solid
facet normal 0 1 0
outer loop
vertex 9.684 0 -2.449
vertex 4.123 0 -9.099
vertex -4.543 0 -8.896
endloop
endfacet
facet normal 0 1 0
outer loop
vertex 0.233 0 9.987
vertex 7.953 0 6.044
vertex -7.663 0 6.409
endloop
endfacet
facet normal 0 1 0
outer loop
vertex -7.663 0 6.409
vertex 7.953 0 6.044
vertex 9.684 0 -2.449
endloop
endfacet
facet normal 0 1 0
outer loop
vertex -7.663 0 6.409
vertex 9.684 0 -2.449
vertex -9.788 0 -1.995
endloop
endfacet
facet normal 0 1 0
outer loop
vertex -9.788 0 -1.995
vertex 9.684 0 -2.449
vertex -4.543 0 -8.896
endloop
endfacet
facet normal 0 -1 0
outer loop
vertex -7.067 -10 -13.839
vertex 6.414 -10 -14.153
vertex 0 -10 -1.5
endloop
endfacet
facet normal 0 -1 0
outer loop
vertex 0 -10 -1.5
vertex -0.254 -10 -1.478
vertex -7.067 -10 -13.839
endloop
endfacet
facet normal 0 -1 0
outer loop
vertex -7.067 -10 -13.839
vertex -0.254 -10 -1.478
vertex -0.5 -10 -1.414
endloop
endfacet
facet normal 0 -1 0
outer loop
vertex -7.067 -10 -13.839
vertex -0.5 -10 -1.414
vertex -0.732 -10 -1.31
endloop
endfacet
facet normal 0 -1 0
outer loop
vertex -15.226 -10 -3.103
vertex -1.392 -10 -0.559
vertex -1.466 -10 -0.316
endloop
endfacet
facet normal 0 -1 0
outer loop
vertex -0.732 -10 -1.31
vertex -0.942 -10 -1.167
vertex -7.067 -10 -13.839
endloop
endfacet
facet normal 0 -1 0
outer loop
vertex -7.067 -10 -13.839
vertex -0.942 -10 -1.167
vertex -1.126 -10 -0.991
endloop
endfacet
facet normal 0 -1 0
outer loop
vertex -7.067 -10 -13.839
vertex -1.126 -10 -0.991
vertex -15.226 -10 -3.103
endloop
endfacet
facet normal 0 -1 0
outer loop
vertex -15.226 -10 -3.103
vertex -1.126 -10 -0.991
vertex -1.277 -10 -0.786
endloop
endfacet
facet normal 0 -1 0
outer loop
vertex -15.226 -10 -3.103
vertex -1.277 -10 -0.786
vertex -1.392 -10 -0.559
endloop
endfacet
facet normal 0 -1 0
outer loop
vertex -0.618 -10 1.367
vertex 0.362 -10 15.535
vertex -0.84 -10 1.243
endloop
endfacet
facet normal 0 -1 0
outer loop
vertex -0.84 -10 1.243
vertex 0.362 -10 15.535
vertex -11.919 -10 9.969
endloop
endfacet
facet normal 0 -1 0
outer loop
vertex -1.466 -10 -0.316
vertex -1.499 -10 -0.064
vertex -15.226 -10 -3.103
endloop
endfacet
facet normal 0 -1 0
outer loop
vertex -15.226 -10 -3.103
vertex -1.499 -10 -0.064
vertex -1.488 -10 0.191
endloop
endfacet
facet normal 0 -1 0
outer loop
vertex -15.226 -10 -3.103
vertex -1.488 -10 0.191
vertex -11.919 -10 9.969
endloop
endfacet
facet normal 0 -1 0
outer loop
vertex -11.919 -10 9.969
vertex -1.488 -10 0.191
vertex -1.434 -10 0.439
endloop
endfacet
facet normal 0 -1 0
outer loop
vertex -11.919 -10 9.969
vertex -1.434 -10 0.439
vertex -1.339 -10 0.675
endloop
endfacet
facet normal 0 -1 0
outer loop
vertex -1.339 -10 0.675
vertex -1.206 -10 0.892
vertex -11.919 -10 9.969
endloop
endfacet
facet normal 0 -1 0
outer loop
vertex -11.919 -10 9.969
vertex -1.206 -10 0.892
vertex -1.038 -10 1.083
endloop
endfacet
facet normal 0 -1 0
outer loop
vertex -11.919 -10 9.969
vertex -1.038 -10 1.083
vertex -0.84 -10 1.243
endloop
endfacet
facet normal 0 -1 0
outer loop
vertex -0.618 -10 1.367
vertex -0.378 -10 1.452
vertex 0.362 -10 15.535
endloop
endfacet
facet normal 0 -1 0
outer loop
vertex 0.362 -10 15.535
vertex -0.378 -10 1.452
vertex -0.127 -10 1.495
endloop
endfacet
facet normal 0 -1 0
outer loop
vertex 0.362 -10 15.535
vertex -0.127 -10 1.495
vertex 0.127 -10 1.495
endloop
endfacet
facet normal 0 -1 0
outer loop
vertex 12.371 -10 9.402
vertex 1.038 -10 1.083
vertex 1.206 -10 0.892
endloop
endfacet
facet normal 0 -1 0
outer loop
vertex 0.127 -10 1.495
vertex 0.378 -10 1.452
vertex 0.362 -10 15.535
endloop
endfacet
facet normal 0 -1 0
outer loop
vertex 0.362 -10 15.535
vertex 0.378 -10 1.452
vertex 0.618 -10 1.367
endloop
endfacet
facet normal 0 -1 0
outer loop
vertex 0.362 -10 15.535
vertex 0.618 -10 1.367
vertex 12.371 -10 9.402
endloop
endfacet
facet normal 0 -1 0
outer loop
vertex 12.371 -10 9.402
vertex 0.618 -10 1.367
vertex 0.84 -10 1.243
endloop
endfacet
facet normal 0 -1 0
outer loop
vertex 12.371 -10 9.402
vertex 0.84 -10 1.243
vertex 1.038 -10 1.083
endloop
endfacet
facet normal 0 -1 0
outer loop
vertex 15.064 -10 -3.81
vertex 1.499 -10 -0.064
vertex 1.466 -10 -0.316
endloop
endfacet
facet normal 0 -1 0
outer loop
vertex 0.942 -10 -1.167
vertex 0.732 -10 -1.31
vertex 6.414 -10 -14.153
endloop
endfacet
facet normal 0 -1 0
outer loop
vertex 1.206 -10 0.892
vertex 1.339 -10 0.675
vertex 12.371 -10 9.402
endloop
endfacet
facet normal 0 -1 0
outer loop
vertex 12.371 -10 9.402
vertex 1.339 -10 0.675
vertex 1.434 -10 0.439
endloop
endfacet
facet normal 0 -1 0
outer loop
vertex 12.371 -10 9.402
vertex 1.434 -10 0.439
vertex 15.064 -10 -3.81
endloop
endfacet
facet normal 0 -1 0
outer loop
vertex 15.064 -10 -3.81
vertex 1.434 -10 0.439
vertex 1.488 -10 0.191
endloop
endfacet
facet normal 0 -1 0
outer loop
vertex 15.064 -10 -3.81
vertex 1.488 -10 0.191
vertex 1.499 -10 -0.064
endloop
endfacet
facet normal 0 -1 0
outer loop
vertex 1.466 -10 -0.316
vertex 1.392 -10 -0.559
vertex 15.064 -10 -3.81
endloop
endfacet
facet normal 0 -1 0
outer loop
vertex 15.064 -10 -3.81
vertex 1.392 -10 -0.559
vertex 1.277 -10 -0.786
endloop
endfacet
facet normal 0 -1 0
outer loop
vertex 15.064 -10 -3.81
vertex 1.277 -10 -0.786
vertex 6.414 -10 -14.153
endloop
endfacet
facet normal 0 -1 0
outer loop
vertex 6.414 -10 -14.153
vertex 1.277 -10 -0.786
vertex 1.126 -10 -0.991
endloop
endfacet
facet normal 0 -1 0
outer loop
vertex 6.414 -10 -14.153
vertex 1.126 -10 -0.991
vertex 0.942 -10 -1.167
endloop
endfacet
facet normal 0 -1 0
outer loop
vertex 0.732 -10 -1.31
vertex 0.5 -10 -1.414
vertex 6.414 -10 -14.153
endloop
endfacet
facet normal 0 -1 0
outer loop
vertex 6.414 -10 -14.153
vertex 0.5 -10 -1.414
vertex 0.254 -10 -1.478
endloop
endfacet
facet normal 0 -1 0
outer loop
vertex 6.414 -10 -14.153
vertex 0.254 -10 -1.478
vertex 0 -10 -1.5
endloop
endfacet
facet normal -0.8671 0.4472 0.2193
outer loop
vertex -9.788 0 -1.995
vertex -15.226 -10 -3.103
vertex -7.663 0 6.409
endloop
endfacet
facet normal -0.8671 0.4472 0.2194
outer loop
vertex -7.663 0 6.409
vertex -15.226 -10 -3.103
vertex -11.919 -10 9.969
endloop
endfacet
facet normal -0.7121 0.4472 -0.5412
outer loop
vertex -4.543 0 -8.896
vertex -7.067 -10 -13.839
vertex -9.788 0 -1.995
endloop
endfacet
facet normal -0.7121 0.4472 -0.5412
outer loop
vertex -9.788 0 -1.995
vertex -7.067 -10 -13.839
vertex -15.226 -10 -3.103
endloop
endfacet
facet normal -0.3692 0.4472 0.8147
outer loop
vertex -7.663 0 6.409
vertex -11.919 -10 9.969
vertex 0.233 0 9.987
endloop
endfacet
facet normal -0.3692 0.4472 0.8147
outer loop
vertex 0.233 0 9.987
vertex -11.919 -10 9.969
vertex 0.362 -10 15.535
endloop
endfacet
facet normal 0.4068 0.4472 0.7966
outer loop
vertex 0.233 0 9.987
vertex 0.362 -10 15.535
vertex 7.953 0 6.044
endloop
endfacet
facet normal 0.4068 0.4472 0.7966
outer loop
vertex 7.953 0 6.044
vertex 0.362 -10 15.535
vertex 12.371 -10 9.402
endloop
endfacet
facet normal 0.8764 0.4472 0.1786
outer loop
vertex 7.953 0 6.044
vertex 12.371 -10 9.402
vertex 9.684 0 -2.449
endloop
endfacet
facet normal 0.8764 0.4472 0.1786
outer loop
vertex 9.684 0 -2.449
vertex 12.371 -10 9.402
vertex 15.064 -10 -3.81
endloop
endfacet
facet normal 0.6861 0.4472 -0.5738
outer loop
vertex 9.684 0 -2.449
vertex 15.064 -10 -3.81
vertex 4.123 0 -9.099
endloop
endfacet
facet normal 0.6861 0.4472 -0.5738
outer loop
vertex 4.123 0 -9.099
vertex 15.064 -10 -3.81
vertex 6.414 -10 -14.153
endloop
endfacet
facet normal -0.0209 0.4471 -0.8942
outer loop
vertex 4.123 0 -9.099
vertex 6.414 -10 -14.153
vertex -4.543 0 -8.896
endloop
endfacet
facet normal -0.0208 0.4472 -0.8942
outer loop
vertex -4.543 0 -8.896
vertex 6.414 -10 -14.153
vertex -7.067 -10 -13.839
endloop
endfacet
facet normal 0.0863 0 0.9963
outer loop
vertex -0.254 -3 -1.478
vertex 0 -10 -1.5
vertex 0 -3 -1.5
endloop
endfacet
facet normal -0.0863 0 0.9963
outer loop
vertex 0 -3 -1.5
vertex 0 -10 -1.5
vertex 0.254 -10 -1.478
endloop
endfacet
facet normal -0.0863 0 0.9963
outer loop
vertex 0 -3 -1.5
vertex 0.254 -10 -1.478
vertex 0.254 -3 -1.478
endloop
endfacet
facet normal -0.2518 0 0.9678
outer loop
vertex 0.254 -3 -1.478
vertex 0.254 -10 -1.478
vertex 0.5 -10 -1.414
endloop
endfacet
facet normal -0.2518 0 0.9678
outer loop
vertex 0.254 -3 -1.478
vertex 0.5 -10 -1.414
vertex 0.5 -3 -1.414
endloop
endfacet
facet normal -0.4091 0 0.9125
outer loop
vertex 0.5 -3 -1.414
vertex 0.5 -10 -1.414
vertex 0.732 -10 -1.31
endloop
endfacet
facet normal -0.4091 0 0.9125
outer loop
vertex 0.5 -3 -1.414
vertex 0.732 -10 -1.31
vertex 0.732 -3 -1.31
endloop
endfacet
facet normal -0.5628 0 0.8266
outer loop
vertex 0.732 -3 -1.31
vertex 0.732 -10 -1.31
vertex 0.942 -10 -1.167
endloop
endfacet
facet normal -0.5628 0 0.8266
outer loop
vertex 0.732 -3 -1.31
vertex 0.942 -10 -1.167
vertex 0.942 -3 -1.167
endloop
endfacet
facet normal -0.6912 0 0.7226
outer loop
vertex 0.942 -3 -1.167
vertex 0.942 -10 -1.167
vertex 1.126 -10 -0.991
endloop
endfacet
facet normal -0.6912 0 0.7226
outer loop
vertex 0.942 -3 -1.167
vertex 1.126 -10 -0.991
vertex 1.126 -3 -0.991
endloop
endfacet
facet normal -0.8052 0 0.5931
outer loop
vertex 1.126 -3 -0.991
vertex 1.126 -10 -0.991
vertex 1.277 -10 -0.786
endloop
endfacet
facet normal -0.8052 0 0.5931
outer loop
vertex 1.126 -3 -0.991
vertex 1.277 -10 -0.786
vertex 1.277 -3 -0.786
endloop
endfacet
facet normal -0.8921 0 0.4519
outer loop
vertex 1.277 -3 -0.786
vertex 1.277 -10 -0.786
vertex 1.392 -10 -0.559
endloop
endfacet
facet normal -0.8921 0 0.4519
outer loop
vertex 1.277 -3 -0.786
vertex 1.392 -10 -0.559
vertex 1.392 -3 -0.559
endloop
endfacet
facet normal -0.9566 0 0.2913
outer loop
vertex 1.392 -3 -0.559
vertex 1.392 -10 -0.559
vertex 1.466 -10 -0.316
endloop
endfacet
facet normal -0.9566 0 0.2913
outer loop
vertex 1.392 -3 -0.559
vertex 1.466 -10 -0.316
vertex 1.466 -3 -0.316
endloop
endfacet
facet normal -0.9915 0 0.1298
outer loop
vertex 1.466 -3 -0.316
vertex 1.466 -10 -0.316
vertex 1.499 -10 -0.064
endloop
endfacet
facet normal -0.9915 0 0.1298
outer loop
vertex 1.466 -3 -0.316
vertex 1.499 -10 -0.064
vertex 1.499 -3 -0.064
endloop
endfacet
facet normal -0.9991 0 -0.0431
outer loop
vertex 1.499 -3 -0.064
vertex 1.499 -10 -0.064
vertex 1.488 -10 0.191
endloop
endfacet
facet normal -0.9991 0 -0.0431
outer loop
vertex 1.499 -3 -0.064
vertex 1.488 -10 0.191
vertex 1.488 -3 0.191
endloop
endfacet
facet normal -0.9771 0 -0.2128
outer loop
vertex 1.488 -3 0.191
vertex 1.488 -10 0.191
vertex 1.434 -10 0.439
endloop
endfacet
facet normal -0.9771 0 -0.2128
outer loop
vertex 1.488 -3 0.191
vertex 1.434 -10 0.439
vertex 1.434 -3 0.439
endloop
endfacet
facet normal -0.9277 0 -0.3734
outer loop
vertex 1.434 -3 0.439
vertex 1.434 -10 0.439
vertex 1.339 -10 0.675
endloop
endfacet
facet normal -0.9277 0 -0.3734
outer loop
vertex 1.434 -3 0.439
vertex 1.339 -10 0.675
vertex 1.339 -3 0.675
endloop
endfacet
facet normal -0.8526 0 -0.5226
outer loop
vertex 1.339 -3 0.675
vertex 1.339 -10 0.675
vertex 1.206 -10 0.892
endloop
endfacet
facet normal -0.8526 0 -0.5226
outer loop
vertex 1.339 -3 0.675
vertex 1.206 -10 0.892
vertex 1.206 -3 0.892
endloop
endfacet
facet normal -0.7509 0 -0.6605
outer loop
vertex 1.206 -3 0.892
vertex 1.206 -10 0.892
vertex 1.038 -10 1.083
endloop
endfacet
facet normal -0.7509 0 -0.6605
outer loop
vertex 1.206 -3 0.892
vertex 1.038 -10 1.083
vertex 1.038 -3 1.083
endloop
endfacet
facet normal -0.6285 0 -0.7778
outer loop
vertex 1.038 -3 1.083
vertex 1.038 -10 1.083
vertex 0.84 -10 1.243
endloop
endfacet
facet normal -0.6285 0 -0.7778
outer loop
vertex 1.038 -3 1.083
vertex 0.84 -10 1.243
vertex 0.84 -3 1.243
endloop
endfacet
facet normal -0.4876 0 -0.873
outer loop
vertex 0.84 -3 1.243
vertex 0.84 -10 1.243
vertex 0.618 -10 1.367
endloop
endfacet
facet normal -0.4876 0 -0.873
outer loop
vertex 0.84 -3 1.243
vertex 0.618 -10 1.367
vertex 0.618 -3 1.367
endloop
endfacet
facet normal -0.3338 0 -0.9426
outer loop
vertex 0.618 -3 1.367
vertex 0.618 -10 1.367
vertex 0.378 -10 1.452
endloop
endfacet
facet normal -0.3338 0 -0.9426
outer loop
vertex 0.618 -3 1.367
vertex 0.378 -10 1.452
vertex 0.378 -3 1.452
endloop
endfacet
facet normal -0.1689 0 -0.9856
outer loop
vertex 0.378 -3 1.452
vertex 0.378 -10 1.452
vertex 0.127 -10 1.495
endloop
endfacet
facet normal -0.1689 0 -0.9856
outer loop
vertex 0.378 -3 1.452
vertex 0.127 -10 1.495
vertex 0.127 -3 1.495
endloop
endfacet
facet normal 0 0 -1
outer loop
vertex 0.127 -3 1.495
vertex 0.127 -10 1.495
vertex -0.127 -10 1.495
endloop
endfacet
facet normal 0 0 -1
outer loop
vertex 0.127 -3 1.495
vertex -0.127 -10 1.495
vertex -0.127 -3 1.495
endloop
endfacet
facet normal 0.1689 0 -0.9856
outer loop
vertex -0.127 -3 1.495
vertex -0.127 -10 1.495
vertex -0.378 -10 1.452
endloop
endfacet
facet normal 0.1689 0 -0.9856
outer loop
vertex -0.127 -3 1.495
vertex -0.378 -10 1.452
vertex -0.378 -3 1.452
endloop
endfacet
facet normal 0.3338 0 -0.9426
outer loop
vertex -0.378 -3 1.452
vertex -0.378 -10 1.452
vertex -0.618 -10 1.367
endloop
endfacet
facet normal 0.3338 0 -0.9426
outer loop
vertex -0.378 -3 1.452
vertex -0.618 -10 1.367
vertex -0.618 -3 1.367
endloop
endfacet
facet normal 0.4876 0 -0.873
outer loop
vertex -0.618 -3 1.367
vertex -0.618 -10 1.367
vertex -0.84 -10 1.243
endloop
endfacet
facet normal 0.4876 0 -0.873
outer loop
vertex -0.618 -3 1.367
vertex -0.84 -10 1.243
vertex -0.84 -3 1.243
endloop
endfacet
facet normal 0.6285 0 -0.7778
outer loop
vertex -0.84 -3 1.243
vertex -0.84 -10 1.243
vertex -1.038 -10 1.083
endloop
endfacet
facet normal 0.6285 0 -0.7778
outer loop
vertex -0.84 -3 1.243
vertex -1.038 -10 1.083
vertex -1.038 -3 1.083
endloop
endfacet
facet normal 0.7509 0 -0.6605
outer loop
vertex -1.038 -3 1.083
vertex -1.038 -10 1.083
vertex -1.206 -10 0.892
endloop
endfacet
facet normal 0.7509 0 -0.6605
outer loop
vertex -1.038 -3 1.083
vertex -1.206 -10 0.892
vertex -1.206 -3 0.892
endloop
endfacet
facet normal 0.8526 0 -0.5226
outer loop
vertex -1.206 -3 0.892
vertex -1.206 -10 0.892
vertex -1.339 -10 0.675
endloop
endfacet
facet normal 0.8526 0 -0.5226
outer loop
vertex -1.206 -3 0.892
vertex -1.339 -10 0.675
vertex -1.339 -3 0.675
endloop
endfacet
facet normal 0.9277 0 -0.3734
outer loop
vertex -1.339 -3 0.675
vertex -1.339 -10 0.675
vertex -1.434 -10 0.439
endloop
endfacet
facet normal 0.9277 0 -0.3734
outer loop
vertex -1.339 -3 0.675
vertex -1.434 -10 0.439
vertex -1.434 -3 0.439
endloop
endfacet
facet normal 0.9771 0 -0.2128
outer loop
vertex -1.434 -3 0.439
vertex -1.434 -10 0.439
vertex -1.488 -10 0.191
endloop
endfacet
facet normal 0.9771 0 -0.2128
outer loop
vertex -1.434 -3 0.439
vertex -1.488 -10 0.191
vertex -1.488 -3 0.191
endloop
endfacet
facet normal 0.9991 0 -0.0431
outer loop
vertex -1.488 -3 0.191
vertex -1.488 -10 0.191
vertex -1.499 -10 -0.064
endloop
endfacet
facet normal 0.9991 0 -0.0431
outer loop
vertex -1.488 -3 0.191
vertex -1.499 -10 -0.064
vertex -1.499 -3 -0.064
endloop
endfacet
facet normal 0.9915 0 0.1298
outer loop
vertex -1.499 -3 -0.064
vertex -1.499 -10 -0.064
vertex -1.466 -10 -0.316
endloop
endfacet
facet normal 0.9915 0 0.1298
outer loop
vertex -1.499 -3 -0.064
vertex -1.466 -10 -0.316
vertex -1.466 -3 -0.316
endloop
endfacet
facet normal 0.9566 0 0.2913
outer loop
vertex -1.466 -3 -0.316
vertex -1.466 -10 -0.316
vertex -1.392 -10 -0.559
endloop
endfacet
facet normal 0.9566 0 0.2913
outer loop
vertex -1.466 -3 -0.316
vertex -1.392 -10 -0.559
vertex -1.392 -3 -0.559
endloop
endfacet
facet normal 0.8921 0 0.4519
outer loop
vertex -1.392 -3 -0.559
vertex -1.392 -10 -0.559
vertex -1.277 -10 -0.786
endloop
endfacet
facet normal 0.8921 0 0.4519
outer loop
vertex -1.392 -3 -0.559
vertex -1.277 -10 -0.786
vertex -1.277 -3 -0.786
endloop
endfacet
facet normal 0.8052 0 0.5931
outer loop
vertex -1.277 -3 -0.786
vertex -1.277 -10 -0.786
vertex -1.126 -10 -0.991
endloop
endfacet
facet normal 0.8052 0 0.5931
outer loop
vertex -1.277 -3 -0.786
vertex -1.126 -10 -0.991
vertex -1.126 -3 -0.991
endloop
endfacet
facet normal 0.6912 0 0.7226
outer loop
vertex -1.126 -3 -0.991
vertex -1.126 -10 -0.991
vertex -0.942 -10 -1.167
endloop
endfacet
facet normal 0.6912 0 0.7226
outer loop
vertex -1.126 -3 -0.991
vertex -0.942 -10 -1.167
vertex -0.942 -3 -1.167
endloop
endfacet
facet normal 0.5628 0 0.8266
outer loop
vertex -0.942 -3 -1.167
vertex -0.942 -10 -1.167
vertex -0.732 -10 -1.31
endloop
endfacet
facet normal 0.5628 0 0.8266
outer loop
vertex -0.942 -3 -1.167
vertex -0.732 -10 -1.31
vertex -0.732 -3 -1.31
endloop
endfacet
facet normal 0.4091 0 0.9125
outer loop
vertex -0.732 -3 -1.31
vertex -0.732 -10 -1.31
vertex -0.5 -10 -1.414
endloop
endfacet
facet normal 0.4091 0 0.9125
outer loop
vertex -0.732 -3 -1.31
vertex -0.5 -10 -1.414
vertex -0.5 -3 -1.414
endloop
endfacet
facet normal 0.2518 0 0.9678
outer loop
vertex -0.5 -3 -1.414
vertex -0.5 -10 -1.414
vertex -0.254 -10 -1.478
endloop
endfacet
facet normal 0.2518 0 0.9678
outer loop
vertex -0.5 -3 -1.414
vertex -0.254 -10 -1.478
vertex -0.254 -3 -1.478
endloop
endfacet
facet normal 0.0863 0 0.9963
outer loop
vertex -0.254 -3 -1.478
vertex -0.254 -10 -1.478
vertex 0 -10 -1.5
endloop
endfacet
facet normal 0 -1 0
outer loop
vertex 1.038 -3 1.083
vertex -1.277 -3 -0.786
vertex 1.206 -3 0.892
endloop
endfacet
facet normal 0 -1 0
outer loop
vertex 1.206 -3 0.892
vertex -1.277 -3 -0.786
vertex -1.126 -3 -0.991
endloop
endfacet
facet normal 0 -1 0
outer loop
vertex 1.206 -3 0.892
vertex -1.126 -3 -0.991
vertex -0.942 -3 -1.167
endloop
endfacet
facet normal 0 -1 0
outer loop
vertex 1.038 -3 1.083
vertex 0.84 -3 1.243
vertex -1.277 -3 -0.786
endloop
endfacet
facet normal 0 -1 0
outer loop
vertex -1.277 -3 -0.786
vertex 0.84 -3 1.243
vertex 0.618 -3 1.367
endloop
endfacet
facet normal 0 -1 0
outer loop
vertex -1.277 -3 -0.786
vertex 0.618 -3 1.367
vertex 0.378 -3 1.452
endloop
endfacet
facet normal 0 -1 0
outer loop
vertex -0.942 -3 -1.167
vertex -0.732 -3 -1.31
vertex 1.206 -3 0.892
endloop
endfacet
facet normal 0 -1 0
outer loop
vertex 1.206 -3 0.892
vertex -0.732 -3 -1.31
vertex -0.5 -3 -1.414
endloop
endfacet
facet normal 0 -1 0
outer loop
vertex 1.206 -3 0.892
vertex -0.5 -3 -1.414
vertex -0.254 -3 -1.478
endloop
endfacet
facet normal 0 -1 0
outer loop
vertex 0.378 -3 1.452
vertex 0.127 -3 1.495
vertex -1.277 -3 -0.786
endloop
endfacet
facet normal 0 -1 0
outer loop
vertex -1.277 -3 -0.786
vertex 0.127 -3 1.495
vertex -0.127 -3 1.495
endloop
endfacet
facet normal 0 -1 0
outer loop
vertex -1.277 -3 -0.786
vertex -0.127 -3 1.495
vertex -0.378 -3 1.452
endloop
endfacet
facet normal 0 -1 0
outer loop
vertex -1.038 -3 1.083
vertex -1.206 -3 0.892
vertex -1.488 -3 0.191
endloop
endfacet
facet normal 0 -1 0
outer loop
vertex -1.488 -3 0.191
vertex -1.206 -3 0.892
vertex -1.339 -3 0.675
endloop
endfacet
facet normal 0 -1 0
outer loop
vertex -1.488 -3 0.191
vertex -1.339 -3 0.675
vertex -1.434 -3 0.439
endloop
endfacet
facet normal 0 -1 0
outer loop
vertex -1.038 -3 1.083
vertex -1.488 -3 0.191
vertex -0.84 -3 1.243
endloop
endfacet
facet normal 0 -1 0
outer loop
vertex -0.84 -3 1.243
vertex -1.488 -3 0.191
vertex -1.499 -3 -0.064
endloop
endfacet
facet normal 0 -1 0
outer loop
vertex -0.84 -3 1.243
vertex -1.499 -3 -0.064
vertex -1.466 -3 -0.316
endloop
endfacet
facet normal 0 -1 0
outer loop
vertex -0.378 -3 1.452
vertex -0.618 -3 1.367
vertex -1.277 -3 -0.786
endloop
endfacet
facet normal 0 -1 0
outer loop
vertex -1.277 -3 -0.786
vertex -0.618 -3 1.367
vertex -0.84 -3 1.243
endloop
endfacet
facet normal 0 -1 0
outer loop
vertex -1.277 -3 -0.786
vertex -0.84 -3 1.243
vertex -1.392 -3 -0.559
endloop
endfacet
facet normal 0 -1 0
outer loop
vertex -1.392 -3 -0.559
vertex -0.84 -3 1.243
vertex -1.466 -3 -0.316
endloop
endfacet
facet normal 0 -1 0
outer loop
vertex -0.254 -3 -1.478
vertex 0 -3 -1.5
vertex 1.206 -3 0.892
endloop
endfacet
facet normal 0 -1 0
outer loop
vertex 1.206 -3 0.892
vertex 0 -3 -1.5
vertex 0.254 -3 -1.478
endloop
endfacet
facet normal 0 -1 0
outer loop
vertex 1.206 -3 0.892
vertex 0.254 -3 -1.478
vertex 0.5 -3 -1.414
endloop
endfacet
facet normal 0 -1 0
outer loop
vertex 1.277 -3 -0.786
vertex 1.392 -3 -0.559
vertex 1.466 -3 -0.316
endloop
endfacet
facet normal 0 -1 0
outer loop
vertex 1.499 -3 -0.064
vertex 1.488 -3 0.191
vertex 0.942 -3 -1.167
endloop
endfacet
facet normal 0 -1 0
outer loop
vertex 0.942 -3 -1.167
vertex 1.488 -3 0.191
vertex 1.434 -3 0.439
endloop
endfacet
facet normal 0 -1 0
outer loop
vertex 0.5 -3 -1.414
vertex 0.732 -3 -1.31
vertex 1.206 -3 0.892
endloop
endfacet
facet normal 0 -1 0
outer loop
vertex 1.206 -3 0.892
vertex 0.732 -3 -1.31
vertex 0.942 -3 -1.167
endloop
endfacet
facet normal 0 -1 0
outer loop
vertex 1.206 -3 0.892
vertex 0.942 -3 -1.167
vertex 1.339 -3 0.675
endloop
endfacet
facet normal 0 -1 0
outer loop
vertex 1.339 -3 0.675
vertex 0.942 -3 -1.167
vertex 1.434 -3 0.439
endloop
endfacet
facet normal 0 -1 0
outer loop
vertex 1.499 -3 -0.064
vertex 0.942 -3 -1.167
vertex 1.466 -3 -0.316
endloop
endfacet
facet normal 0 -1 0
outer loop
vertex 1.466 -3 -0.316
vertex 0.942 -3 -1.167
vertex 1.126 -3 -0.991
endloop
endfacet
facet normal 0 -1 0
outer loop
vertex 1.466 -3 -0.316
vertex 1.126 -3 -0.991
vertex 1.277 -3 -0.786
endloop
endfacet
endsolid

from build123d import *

# Parameters (mm, degrees)
SKETCH3_R          = 1.5
CUT_EXTRUDE1_DEPTH = 7


with BuildPart() as part:
    # Sketch2 → Loft1 section 0
    with BuildSketch(Plane(origin=(0, -10, 0), x_dir=(1, 0, 0), z_dir=(0, 1, 0))):
        with BuildLine():
            Line((6.413648207, 14.153454805), (-7.066772303, 13.838926817))
            Line((-7.066772303, 13.838926817), (-15.225769132, 3.103404673))
            Line((-15.225769132, 3.103404673), (-11.919451256, -9.969044488))
            Line((-11.919451256, -9.969044488), (0.362456529, -15.534599818))
            Line((0.362456529, -15.534599818), (12.371427154, -9.402284637))
            Line((12.371427154, -9.402284637), (15.064460802, 3.810142647))
            Line((15.064460802, 3.810142647), (6.413648207, 14.153454805))
        make_face()
    # Sketch1 → Loft1 section 1
    with BuildSketch(Plane(origin=(0, 0, 0), x_dir=(1, 0, 0), z_dir=(0, 1, 0))):
        with BuildLine():
            Line((7.953060314, -6.044325838), (9.68429623, 2.449377416))
            Line((9.68429623, 2.449377416), (4.123059561, 9.098649518))
            Line((4.123059561, 9.098649518), (-4.542925052, 8.896452954))
            Line((-4.542925052, 8.896452954), (-9.787994442, 1.995045862))
            Line((-9.787994442, 1.995045862), (-7.662504379, -6.408671456))
            Line((-7.662504379, -6.408671456), (0.233007768, -9.986528454))
            Line((0.233007768, -9.986528454), (7.953060314, -6.044325838))
        make_face()
    loft()

    # Sketch3 → Cut-Extrude1 (cut)
    with BuildSketch(Plane.XZ.offset(10)):
        with Locations(Location((0, 0, 0), (0, 0, 270))):
            Circle(SKETCH3_R)
    extrude(amount=-CUT_EXTRUDE1_DEPTH, mode=Mode.SUBTRACT)


solid = part.part
